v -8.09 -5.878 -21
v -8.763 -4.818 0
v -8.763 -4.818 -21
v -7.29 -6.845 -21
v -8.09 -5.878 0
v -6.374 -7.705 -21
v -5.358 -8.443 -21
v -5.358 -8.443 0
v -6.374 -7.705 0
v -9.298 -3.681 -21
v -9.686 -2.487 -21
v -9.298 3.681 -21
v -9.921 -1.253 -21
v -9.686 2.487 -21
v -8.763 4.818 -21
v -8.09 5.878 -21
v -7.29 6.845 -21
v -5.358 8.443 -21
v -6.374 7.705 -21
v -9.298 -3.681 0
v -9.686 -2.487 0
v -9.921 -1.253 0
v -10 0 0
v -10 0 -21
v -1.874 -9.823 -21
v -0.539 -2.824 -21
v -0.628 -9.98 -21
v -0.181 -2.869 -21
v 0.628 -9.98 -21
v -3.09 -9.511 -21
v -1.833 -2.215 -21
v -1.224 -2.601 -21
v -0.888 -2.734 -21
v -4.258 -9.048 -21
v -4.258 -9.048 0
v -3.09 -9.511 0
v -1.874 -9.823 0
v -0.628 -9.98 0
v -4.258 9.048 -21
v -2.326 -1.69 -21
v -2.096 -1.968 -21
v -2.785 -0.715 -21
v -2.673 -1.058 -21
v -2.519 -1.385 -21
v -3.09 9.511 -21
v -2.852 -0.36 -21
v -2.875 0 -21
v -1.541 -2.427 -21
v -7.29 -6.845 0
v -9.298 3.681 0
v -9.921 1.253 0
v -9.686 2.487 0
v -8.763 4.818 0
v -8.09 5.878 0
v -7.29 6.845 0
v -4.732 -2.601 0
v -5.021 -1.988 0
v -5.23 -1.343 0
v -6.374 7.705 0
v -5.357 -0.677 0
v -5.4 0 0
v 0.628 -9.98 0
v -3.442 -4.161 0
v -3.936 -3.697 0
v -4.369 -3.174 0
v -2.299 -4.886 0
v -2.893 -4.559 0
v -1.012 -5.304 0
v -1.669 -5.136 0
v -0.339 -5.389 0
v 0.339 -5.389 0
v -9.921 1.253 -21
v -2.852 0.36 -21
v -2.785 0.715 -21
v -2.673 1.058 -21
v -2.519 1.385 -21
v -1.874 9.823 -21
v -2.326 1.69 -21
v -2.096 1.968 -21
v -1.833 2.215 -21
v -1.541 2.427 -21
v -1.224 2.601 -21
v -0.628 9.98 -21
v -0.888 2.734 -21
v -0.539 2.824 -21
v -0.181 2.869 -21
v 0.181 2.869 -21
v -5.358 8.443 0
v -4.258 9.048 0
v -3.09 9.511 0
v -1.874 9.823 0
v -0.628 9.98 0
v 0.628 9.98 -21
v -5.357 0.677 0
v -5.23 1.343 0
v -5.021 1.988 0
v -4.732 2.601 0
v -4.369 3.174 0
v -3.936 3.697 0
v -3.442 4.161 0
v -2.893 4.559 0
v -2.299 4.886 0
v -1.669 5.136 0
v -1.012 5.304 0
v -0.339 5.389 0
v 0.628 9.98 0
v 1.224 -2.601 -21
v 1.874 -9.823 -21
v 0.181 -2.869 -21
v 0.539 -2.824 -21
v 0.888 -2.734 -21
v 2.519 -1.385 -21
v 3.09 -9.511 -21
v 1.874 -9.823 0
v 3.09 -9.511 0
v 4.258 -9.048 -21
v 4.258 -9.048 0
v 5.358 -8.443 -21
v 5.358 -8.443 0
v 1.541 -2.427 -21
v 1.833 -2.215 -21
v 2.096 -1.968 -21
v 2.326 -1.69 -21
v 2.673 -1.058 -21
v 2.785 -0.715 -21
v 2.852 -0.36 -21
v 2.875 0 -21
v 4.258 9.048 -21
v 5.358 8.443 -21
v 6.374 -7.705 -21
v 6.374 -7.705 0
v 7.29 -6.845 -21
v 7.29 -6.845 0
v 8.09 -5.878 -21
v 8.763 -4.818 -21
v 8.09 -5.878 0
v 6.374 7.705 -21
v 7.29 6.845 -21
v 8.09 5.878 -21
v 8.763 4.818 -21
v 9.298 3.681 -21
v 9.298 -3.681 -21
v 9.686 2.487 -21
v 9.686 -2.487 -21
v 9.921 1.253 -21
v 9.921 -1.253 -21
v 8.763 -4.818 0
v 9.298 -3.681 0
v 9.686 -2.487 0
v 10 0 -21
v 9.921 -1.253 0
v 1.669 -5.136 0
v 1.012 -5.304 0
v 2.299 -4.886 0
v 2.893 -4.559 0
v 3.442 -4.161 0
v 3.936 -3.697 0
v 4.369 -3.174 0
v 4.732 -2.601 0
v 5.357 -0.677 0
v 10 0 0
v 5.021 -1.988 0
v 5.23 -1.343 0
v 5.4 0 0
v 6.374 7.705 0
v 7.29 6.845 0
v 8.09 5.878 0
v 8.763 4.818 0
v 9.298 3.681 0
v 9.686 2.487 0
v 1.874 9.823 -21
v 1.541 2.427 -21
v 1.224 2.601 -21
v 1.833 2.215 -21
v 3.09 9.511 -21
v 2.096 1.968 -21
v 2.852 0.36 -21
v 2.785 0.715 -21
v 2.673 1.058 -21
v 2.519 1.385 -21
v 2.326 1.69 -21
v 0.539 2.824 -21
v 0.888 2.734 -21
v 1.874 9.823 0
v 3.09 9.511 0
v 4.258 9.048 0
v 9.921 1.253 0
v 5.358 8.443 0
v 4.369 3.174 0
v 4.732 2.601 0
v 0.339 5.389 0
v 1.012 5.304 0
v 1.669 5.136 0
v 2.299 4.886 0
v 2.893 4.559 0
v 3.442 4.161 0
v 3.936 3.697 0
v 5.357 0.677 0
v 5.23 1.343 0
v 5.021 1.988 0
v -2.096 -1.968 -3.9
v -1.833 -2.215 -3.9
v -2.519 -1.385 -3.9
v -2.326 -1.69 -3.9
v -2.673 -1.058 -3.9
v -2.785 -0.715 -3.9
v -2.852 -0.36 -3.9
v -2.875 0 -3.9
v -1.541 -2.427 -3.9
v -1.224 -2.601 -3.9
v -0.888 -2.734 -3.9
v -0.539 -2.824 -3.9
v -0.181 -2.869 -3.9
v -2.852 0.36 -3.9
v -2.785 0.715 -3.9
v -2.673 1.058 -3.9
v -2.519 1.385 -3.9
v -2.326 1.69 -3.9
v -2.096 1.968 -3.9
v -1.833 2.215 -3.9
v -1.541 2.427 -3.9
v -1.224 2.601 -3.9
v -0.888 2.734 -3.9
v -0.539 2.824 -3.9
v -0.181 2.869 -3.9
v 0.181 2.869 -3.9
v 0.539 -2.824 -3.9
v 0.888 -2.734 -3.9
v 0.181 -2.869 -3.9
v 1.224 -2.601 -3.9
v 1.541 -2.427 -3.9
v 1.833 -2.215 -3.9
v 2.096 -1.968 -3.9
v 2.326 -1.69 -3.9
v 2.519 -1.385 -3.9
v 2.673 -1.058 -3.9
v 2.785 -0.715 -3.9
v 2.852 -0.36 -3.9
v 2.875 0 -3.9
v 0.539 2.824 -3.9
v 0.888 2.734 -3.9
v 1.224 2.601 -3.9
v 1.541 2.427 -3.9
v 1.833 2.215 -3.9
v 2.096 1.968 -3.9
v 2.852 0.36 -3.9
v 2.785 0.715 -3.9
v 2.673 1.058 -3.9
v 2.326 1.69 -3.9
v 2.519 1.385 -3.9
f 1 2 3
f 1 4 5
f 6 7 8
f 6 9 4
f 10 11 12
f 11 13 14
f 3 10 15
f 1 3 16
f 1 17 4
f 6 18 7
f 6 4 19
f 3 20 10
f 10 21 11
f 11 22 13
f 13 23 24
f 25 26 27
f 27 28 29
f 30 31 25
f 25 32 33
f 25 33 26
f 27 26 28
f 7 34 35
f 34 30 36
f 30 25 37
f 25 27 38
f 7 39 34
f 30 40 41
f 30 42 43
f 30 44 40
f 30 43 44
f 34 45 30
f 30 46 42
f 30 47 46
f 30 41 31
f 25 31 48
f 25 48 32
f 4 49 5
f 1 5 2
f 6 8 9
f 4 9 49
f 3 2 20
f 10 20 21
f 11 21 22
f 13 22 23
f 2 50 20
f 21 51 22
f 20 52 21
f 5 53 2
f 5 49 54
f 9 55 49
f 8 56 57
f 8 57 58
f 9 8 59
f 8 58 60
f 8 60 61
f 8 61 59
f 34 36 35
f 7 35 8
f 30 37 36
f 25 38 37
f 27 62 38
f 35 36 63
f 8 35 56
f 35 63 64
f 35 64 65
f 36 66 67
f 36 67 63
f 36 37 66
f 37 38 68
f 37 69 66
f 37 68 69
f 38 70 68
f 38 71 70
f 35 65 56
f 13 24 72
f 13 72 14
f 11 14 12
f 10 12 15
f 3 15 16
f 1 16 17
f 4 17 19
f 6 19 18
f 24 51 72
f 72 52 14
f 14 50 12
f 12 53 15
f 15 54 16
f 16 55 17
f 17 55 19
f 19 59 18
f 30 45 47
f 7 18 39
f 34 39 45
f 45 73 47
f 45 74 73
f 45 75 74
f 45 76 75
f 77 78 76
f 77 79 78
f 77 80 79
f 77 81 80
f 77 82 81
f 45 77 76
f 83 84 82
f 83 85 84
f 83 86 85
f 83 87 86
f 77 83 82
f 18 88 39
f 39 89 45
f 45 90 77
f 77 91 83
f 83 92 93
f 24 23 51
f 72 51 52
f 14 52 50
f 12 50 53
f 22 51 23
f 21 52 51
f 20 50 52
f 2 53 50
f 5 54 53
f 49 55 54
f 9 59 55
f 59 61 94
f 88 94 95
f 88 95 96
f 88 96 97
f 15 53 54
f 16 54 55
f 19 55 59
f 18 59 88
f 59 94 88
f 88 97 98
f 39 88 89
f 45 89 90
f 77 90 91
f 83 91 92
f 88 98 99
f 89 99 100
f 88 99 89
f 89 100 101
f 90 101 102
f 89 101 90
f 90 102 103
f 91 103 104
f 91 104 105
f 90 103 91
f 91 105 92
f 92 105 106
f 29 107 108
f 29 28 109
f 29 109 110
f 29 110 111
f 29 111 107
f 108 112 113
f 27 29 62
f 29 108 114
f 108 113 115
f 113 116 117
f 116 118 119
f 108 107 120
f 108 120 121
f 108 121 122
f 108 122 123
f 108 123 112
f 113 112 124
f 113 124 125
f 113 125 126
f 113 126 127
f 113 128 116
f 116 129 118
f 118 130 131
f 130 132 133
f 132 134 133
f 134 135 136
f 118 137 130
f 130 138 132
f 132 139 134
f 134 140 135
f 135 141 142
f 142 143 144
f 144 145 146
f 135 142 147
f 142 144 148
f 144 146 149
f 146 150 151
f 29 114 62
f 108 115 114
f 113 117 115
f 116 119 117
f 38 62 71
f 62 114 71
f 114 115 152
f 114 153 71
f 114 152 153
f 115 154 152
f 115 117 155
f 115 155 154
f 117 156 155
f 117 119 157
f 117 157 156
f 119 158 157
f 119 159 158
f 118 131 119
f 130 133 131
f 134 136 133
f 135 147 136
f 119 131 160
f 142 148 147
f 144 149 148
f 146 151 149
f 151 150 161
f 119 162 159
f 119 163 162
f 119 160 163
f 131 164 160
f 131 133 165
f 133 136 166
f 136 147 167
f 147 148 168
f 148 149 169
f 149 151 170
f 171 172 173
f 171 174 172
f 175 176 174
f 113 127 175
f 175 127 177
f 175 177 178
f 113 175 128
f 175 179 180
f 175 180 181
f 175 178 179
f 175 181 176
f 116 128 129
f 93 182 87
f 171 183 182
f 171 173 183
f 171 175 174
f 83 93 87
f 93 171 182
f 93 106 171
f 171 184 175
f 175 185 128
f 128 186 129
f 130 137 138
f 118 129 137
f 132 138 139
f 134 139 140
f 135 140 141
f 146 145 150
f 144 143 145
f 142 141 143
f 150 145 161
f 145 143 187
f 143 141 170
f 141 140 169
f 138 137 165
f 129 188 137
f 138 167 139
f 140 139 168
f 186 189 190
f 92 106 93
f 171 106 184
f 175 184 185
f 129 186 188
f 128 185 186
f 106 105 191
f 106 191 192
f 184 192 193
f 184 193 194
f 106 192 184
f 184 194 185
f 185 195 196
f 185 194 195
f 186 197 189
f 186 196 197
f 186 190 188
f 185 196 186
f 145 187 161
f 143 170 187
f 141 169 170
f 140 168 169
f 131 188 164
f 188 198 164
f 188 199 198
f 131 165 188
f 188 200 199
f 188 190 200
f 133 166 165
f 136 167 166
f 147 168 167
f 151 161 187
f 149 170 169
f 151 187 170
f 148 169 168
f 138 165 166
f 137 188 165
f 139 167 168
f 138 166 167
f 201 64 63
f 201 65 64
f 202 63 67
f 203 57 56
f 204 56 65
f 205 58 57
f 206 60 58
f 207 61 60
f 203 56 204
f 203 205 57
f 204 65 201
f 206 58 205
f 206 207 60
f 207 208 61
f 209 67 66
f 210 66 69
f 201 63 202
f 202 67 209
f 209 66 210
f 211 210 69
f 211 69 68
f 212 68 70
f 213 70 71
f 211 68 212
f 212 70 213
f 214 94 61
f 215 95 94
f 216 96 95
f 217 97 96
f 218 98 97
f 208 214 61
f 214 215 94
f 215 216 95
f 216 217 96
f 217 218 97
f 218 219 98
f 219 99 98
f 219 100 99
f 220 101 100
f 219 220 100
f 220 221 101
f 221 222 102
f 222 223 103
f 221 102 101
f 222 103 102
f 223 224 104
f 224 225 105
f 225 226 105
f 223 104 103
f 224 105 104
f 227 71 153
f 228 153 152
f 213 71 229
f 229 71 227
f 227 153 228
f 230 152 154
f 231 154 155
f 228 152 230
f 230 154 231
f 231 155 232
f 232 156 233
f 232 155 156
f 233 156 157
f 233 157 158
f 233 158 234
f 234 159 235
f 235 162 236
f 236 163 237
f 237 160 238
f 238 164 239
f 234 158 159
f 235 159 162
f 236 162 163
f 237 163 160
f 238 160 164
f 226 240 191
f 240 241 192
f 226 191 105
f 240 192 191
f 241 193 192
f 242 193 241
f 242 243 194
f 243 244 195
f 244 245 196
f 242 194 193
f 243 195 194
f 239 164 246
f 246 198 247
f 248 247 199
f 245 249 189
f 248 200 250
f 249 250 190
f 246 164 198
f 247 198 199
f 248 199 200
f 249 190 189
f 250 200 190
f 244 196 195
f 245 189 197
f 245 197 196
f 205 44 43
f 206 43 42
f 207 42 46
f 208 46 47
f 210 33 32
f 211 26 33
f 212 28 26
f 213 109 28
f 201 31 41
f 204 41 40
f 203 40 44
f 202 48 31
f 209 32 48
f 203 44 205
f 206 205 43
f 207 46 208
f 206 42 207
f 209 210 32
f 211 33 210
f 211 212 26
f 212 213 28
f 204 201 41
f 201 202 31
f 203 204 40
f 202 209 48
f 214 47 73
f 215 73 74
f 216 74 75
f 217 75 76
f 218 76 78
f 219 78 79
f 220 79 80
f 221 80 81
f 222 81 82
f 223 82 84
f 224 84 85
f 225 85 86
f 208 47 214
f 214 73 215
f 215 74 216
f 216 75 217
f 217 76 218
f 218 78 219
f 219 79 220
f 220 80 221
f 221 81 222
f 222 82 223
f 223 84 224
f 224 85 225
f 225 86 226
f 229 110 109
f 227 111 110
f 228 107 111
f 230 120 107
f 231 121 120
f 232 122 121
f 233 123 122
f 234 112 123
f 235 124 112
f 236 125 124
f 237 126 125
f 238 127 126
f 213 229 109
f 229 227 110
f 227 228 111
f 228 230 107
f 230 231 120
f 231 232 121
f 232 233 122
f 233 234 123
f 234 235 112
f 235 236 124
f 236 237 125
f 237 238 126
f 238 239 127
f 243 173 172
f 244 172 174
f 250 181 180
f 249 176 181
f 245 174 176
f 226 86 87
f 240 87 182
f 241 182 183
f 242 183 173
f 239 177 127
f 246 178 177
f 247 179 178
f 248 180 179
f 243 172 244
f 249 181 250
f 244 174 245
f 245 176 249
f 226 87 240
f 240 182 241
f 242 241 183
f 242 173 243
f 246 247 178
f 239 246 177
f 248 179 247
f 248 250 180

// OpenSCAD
$fn = 50;


difference() {
	union() {
		translate(v = [0, 0, -21.0000000000]) {
			cylinder(h = 21, r = 10.0000000000);
		}
		#translate(v = [0, 0, -24.0000000000]) {
			cylinder(h = 24, r = 2.8750000000);
		}
	}
	union() {
		translate(v = [0, 0, 0]) {
			rotate(a = [0, 0, 0]) {
				difference() {
					union() {
						translate(v = [0, 0, -24.0000000000]) {
							cylinder(h = 24, r = 2.6000000000);
						}
						translate(v = [0, 0, -3.9000000000]) {
							cylinder(h = 3.9000000000, r1 = 2.8750000000, r2 = 5.4000000000);
						}
						translate(v = [0, 0, -24.0000000000]) {
							cylinder(h = 24, r = 2.8750000000);
						}
						translate(v = [0, 0, -24.0000000000]) {
							cylinder(h = 24, r = 2.6000000000);
						}
					}
					union();
				}
			}
		}
	}
}
